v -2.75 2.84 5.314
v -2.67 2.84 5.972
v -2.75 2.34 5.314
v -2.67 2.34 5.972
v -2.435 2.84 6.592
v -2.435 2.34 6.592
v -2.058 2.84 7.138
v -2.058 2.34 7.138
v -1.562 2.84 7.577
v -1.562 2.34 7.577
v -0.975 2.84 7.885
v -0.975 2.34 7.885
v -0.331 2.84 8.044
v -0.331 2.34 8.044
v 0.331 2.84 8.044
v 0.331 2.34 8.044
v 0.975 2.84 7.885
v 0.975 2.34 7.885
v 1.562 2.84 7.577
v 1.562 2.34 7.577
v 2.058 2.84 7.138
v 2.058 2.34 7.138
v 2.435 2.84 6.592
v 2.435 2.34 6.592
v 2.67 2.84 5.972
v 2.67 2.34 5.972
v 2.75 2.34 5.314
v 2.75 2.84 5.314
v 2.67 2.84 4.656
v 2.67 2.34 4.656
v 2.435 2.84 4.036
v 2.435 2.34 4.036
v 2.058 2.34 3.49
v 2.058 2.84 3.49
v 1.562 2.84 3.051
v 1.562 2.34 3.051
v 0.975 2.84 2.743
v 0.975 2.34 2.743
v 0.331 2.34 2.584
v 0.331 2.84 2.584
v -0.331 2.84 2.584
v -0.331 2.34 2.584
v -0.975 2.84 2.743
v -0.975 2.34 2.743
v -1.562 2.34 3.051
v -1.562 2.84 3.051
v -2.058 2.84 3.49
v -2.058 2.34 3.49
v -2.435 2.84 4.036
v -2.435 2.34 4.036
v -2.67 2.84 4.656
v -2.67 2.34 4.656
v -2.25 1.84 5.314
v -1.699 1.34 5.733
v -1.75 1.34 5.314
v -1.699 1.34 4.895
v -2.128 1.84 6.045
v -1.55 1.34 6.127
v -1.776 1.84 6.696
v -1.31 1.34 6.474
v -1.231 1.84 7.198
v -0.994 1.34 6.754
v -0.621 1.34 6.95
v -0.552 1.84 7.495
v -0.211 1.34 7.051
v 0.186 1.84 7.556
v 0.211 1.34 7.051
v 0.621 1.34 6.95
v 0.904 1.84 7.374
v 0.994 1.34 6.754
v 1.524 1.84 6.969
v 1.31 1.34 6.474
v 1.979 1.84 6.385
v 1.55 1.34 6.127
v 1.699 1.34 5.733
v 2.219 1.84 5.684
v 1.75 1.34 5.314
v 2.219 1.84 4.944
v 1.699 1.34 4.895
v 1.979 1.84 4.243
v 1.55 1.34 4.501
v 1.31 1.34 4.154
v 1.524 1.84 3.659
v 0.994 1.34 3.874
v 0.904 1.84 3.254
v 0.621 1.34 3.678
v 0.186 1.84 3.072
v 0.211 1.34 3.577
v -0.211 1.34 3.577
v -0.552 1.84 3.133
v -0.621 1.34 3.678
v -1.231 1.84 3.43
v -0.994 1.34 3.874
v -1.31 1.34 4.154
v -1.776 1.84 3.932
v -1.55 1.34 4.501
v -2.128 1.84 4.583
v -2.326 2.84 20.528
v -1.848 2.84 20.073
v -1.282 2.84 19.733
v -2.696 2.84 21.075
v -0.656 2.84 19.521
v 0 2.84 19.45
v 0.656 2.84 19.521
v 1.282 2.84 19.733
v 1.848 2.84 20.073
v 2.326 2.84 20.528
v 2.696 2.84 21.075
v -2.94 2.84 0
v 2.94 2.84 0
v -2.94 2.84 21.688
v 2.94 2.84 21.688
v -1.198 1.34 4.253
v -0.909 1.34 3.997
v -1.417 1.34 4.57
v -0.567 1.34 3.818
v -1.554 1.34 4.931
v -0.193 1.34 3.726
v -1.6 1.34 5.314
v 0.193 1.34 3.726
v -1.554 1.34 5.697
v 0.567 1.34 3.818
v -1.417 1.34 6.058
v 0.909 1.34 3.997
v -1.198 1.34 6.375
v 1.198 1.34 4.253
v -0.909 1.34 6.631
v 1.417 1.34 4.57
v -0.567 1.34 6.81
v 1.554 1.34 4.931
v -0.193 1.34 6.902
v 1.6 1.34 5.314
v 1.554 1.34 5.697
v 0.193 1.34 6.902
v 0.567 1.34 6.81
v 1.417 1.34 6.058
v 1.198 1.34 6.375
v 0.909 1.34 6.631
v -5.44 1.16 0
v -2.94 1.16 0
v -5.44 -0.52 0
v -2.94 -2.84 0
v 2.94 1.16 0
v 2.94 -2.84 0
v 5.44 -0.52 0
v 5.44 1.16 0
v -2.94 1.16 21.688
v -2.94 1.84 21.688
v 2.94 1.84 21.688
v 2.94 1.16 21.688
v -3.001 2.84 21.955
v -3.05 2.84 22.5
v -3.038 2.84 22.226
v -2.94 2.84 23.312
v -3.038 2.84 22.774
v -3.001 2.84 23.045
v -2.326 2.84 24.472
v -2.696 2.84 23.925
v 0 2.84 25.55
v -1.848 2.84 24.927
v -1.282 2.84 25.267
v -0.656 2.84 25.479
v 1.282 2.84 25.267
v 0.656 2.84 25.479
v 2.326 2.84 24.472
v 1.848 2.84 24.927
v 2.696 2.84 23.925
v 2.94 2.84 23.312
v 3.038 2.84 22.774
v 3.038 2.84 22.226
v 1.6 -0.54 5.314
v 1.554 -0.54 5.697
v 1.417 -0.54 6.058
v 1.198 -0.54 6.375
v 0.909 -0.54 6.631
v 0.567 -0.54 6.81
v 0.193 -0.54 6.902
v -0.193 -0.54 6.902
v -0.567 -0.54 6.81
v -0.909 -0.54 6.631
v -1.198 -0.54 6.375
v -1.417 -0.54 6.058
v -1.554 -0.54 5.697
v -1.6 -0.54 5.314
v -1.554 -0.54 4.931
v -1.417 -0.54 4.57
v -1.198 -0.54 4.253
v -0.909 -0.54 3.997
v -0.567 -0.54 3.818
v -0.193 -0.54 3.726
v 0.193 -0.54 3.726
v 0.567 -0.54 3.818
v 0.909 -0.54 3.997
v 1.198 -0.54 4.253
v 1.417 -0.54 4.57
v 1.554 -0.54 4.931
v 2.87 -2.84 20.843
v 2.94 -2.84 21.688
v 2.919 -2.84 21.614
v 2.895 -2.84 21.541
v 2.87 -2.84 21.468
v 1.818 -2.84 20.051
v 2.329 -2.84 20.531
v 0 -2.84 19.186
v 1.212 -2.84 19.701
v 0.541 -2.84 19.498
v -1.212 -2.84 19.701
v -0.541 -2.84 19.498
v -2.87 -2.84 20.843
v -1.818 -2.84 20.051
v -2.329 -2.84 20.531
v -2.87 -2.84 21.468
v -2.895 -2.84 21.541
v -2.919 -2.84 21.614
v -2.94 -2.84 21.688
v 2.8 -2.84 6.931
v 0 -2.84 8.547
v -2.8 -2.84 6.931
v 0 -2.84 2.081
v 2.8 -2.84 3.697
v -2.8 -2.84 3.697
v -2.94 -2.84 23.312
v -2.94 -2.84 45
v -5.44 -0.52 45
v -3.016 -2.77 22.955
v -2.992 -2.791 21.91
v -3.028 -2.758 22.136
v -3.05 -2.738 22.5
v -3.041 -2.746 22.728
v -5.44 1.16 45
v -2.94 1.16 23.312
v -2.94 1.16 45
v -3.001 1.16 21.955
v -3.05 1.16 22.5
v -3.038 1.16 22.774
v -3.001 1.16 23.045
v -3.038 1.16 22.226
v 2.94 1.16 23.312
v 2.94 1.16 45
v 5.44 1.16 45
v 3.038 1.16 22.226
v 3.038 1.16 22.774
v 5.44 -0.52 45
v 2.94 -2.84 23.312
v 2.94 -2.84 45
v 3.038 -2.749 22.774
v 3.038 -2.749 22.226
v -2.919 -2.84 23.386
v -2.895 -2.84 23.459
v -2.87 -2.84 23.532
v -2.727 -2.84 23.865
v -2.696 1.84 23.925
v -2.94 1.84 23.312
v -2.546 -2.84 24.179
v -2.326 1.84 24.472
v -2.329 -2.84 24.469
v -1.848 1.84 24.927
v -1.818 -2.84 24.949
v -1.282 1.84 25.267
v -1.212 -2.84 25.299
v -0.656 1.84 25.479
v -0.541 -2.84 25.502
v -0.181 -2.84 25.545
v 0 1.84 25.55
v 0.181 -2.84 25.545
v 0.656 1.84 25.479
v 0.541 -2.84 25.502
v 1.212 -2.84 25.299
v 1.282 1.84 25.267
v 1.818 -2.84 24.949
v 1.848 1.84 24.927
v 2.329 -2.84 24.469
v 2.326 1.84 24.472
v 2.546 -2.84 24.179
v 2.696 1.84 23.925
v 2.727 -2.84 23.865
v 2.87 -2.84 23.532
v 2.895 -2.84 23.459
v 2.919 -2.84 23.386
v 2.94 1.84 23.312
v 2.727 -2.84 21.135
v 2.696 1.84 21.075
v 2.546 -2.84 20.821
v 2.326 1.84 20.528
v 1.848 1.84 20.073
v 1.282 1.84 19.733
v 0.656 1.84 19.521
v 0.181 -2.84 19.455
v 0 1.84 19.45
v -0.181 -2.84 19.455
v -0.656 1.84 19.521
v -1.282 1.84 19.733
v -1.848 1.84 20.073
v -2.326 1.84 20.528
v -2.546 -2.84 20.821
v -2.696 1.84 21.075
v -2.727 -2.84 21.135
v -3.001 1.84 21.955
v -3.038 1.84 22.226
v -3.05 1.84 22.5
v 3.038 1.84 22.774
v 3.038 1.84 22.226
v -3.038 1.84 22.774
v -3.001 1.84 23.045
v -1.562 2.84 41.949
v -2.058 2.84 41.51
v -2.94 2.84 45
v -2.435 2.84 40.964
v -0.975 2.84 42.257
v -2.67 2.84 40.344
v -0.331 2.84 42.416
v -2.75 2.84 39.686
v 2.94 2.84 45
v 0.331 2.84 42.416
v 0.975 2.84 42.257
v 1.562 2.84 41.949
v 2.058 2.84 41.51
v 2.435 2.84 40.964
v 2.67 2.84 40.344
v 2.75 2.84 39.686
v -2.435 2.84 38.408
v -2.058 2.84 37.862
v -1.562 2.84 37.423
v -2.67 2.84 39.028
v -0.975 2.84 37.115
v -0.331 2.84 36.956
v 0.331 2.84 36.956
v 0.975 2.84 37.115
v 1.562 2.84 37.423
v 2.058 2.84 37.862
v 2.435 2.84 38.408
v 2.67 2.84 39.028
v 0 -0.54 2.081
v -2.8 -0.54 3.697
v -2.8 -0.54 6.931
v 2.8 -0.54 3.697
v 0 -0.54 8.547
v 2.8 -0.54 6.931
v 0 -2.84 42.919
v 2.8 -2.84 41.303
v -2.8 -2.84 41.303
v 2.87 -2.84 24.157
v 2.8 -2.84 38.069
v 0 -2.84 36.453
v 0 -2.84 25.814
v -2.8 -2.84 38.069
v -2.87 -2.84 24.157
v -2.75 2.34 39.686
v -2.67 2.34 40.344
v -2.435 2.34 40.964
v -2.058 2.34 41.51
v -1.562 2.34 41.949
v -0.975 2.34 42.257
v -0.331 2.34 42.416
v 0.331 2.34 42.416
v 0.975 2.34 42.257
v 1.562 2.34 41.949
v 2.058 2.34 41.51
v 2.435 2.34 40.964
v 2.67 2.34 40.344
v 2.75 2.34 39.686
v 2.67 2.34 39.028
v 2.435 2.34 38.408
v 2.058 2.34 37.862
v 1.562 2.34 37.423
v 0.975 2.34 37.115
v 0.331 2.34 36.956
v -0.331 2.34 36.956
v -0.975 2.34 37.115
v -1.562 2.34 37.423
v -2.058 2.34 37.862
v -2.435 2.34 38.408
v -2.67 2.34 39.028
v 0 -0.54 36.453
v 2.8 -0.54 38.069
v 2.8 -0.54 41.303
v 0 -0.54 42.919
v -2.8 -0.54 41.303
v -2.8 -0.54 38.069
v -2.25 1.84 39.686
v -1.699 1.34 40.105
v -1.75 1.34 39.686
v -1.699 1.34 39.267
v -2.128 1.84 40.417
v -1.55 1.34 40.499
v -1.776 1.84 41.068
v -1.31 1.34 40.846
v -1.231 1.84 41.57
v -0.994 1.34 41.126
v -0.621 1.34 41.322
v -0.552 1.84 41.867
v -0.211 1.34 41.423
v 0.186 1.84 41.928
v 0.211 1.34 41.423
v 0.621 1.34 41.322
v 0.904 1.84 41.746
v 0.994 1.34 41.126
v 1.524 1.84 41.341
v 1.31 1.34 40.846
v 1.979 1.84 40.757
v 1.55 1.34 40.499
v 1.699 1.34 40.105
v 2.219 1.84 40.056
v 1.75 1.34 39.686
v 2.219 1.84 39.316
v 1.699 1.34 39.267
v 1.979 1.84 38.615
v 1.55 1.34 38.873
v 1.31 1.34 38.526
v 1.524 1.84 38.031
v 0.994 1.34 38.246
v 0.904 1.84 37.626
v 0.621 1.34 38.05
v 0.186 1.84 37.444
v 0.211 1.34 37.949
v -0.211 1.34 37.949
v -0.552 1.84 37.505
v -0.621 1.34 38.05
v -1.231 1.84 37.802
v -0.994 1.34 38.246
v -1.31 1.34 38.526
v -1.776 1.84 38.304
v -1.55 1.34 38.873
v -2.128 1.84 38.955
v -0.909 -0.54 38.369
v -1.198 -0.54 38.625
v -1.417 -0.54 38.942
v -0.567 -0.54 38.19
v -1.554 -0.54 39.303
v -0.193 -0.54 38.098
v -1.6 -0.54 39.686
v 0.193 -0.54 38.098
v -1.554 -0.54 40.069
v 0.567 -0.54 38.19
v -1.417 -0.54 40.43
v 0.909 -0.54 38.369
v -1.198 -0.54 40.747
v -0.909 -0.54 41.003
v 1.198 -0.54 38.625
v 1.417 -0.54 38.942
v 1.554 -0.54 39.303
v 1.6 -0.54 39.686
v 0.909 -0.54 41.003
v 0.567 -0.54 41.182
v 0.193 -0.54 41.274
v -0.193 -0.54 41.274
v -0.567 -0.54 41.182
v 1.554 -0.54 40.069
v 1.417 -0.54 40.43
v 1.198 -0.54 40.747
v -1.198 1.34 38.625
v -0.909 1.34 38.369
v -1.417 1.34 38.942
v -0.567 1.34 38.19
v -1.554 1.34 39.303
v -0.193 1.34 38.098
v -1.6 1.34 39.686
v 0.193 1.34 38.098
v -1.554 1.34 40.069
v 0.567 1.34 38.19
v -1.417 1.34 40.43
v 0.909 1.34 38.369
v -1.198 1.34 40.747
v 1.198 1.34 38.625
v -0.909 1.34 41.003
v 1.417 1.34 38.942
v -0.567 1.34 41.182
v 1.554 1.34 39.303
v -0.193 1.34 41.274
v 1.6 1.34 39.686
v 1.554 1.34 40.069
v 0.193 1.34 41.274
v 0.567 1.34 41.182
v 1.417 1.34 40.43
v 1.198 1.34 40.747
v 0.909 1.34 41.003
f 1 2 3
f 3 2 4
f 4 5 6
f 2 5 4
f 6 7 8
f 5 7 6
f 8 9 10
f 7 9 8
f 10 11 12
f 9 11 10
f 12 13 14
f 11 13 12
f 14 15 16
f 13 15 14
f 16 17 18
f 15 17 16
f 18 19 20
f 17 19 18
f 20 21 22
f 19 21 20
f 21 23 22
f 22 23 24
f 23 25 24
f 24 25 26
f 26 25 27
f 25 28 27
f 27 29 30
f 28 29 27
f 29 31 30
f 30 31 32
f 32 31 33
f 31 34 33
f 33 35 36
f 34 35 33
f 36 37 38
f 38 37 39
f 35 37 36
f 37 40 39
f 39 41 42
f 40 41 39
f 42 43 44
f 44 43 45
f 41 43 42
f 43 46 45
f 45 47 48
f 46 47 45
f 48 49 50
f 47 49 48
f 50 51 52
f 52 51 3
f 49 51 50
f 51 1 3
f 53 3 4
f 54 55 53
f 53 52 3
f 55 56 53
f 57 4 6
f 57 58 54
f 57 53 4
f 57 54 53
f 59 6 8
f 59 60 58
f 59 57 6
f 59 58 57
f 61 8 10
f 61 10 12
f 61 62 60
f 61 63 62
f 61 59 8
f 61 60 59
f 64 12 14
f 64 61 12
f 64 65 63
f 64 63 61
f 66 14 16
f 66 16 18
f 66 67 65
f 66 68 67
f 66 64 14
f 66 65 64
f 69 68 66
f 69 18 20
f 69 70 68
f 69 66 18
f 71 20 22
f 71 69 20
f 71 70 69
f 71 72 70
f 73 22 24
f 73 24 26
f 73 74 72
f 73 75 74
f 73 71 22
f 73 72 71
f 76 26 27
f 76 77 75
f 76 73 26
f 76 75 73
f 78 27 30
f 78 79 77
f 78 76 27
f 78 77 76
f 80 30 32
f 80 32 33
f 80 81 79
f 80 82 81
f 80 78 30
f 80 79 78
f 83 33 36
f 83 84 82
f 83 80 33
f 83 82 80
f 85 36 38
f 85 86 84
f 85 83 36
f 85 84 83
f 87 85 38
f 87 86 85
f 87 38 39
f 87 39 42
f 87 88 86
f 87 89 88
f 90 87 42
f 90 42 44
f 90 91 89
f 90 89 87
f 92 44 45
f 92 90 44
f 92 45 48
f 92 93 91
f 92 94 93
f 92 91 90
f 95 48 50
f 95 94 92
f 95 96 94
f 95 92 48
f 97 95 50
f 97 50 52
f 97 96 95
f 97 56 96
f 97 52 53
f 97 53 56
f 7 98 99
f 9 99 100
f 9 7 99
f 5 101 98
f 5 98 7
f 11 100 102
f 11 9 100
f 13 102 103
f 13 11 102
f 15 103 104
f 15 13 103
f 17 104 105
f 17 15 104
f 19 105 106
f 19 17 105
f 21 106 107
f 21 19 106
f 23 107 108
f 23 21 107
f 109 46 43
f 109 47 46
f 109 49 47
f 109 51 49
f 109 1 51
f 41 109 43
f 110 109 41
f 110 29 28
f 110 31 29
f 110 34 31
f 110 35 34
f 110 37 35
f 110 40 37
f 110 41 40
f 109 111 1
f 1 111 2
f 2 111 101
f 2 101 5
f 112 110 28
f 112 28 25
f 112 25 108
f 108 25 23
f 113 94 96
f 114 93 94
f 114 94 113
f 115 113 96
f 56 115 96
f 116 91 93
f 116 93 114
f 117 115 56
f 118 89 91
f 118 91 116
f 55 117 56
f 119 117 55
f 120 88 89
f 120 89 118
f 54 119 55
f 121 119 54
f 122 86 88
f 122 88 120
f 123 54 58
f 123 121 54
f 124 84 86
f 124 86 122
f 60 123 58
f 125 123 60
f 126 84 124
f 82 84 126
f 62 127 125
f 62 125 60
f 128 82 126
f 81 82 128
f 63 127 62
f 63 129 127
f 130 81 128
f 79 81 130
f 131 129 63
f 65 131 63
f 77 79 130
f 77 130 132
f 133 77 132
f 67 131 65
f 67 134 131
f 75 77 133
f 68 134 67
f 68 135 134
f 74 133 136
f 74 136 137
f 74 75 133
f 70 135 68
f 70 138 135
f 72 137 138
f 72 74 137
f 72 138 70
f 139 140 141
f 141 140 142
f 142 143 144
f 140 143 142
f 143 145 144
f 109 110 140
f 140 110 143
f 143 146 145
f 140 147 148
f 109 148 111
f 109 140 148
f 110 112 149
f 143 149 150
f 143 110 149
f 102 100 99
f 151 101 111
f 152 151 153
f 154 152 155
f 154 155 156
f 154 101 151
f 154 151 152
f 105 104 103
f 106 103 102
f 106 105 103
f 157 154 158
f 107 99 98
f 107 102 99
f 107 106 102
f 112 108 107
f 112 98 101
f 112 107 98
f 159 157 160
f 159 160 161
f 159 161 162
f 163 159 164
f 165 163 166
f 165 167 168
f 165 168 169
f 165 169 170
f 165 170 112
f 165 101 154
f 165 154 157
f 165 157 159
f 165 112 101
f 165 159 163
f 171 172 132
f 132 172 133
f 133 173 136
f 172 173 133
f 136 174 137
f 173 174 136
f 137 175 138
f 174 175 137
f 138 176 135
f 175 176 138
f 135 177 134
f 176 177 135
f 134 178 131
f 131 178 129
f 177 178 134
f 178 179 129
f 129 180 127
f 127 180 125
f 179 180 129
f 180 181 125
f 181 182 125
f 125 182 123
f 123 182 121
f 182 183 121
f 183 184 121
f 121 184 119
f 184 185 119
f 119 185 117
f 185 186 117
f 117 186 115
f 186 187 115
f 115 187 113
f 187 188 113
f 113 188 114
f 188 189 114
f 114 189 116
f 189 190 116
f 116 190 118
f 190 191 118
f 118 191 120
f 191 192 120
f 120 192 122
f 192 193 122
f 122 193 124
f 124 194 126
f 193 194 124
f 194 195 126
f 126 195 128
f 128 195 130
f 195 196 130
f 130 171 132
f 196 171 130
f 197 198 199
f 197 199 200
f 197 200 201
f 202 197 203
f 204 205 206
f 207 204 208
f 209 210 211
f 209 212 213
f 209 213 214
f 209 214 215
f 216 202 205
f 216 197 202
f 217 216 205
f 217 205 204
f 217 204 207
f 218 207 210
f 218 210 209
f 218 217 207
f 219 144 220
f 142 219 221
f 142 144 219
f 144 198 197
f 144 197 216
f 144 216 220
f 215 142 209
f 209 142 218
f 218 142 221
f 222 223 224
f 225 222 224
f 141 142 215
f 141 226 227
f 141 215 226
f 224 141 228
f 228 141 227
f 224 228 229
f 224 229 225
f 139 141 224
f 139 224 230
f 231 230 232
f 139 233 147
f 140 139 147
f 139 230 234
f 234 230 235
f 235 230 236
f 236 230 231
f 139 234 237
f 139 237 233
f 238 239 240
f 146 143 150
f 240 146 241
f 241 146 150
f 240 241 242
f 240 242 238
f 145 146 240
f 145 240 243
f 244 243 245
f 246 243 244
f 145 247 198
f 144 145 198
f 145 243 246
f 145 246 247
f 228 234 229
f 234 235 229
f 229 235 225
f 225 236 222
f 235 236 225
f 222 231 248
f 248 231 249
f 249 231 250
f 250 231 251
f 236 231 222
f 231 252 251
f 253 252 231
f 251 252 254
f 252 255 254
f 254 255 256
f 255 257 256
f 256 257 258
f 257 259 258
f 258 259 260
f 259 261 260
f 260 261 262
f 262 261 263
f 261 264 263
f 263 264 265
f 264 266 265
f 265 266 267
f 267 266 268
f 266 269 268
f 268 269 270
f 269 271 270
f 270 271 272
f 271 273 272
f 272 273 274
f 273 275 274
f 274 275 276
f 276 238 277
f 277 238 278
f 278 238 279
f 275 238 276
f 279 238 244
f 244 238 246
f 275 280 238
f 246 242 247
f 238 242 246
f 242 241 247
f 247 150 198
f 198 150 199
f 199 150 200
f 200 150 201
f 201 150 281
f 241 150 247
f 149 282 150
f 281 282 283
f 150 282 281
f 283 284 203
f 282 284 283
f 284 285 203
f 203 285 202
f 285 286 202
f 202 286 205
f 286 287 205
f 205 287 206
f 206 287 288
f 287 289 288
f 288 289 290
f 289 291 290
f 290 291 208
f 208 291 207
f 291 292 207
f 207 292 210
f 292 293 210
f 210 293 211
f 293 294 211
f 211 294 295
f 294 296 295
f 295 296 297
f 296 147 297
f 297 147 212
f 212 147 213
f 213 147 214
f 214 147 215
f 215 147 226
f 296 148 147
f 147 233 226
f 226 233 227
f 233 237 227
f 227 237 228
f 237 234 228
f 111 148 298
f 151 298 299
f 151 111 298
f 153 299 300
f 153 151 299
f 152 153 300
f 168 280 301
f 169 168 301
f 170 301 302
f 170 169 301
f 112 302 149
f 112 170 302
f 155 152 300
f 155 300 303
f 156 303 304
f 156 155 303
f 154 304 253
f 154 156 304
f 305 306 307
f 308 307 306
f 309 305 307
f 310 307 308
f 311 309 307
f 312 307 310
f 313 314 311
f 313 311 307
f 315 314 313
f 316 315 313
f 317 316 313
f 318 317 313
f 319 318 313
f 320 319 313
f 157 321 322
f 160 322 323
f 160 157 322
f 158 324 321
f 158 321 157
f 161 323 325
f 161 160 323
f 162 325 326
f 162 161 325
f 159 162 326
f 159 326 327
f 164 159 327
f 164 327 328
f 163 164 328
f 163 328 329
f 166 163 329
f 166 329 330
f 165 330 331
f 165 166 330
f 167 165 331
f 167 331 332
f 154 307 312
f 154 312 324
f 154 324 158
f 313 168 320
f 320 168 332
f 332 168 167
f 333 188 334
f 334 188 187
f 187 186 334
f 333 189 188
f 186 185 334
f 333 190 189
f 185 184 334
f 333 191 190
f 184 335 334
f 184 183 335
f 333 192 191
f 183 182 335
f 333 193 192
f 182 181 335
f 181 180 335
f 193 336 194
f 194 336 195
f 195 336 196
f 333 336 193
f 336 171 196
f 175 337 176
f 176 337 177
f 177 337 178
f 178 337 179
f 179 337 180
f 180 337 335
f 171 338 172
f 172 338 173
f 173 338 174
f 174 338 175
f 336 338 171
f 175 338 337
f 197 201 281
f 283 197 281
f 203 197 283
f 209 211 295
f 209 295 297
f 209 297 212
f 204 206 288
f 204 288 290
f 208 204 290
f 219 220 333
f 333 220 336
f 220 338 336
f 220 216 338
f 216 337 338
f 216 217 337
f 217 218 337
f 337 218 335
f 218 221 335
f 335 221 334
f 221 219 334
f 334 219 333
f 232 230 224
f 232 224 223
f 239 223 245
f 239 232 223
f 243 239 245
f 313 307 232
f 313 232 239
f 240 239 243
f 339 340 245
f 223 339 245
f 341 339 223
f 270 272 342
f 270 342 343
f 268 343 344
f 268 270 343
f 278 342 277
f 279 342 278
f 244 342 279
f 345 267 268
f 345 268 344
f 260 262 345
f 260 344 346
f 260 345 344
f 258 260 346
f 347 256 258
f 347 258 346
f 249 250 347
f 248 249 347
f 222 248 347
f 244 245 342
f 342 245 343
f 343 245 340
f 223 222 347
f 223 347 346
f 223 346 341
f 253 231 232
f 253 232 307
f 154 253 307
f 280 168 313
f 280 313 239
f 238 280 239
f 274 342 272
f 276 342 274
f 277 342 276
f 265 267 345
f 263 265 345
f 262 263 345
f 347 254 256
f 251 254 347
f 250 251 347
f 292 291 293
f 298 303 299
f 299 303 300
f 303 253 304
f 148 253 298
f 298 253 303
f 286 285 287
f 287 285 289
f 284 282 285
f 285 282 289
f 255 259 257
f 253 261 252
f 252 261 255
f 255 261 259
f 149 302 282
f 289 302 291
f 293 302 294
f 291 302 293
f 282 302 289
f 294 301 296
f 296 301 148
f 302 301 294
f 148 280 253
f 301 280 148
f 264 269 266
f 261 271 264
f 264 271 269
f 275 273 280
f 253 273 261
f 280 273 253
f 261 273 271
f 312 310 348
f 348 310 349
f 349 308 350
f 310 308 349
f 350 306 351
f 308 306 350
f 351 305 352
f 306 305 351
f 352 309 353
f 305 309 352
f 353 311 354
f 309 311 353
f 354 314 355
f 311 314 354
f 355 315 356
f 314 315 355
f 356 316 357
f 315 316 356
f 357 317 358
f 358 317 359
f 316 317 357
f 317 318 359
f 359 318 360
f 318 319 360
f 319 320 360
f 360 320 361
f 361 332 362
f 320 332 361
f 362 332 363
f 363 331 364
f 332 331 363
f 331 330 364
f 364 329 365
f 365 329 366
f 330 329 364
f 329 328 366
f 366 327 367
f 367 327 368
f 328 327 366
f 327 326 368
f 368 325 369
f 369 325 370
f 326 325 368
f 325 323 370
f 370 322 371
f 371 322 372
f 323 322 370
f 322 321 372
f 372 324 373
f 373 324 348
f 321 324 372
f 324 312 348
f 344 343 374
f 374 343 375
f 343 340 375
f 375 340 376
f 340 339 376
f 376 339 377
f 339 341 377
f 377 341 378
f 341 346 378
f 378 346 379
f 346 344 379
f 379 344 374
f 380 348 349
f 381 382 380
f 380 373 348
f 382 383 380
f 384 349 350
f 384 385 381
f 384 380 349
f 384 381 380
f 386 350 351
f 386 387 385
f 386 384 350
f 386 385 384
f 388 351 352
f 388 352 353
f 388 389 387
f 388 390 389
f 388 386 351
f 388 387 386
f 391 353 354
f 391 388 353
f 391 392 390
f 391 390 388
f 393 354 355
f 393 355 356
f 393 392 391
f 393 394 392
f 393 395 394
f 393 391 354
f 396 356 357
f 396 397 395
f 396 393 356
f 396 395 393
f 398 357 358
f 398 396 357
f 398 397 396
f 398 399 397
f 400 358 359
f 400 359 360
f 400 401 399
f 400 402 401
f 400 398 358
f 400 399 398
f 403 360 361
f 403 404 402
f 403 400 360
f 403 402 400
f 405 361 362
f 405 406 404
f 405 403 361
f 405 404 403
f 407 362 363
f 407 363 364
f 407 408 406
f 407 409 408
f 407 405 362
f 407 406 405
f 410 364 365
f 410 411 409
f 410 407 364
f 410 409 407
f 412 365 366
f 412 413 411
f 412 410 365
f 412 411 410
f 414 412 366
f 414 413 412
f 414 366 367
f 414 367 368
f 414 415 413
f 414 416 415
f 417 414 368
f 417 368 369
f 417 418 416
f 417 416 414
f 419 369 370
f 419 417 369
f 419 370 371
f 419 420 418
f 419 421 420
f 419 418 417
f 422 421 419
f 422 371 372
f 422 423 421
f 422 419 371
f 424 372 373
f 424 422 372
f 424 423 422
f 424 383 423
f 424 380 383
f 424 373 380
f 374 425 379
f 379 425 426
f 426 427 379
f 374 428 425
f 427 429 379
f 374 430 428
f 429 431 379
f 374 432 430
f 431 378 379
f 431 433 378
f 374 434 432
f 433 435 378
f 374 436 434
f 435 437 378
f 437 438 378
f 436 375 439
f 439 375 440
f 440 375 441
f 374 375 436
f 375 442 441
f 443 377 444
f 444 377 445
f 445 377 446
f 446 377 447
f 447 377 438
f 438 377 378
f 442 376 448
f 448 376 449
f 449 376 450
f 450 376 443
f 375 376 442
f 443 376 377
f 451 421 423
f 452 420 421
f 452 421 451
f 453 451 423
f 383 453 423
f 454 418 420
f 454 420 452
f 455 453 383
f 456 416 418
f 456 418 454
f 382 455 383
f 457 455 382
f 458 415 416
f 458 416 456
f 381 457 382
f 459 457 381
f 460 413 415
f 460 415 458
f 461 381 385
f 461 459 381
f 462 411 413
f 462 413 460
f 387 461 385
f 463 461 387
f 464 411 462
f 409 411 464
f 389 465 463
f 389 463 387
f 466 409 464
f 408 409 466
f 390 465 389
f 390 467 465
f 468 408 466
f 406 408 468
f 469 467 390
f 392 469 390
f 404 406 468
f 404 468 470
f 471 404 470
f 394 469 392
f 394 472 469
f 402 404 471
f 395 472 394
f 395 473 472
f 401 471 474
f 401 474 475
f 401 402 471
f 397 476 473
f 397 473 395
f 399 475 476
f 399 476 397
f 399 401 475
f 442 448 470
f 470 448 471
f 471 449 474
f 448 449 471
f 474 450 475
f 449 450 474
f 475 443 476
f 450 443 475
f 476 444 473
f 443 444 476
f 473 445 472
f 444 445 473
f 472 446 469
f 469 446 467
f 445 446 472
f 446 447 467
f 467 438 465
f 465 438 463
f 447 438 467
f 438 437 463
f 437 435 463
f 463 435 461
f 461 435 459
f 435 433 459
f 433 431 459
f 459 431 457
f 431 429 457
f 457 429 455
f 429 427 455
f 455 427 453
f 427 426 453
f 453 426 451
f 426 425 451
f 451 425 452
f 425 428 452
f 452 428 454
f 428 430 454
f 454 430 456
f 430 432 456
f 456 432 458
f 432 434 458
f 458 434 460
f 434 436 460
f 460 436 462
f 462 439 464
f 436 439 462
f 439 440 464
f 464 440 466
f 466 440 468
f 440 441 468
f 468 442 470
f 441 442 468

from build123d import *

# Parameters (mm, degrees)
PAD_DEPTH       = 45
SKETCH001_R     = 1.6
POCKET_DEPTH    = 5.68
SKETCH002_R     = 2.4
SKETCH002_R_2   = 1.6
PAD001_DEPTH    = 4
SKETCH003_R     = 1.6
POCKET001_DEPTH = 2.4
PAD002_DEPTH    = 2.4
SKETCH004_R     = 3.05
POCKET002_DEPTH = 9.68
SKETCH005_R     = 3.05
PAD003_DEPTH    = 1
SKETCH006_R     = 1.6
POCKET003_DEPTH = 5.681
POCKET004_DEPTH = 2.3
SKETCH008_R     = 2.75
POCKET005_DEPTH = 1.5
CHAMFER_SIZE    = 1


with BuildPart() as part:
    # Sketch → Pad (new body)
    with BuildSketch(Plane.XY):
        Polygon((2.94, -2.84), (-2.94, -2.84), (-5.44, -0.52), (-5.44, 1.16), (-2.94, 1.16), (-2.94, 2.84), (2.94, 2.84), (2.94, 1.16), (5.44, 1.16), (5.44, -0.52), align=None)
    extrude(amount=PAD_DEPTH)

    # Sketch001 (on Face6 of Pad) → Pocket (cut)
    with BuildSketch(Plane(origin=(0, 2.84, 0), x_dir=(-1, 0, 0), z_dir=(0, 1, 0))):
        with Locations((0, 22.5)):
            Circle(SKETCH001_R)
    extrude(amount=-POCKET_DEPTH, mode=Mode.SUBTRACT)

    # Sketch002 (on Face11 of Pocket) → Pad001 (join)
    with BuildSketch(Plane(origin=(0, 2.84, 0), x_dir=(-1, 0, 0), z_dir=(0, 1, 0))):
        with Locations((0, 22.5)):
            Circle(SKETCH002_R)
        with Locations((0, 22.5)):
            Circle(SKETCH002_R_2, mode=Mode.SUBTRACT)
    extrude(amount=PAD001_DEPTH)

    # Sketch003 (on Face1 of Pad001) → Pocket001 (cut)
    with BuildSketch(Plane.XZ.offset(2.84)):
        Polygon((0, 19.186009), (2.87, 20.843005), (2.87, 24.156995), (0, 25.813991), (-2.87, 24.156995), (-2.87, 20.843005), align=None)
        with Locations((0, 22.5)):
            Circle(SKETCH003_R, mode=Mode.SUBTRACT)
    extrude(amount=-POCKET001_DEPTH, mode=Mode.SUBTRACT)

    # Pocket001 Face19 → Pad002 (add)
    with BuildSketch(Plane(origin=(0, -0.44, 22.5), x_dir=(-1, 0, 0), z_dir=(0, -1, 0))):
        Polygon((0, 3.313991), (-2.87, 1.656995), (-2.87, -1.656995), (0, -3.313991), (2.87, -1.656995), (2.87, 1.656995), align=None)
        with BuildLine():
            ThreePointArc((1.6, 0), (0, -1.6), (-1.6, 0))
            ThreePointArc((-1.6, 0), (0, 1.6), (1.6, 0))
        make_face(mode=Mode.SUBTRACT)
    extrude(amount=PAD002_DEPTH)

    # Sketch004 (on Face16 of Pad001) → Pocket002 (cut)
    with BuildSketch(Plane(origin=(0, 6.84, 0), x_dir=(-1, 0, 0), z_dir=(0, 1, 0))):
        with Locations((0, 22.5)):
            Circle(SKETCH004_R)
    extrude(amount=-POCKET002_DEPTH, mode=Mode.SUBTRACT)

    # Sketch005 (on Face12 of Pocket002) → Pad003 (join)
    with BuildSketch(Plane(origin=(0, 2.84, 0), x_dir=(-1, 0, 0), z_dir=(0, 1, 0))):
        with Locations((0, 22.5)):
            Circle(SKETCH005_R)
    extrude(amount=-PAD003_DEPTH)

    # Sketch006 (on Face17 of Pad003) → Pocket003 (cut, through all)
    with BuildSketch(Plane.XZ.offset(2.84)):
        with Locations((0, 39.686)):
            Circle(SKETCH006_R)
        with Locations((0, 5.314)):
            Circle(SKETCH006_R)
    extrude(amount=-POCKET003_DEPTH, mode=Mode.SUBTRACT)

    # Sketch007 (on Face1 of Pocket003) → Pocket004 (cut)
    with BuildSketch(Plane.XZ.offset(2.84)):
        Polygon((0, 36.452838), (2.8, 38.069419), (2.8, 41.302581), (0, 42.919162), (-2.8, 41.302581), (-2.8, 38.069419), align=None)
        Polygon((0, 2.080838), (2.8, 3.697419), (2.8, 6.930581), (0, 8.547162), (-2.8, 6.930581), (-2.8, 3.697419), align=None)
    extrude(amount=-POCKET004_DEPTH, mode=Mode.SUBTRACT)

    # Sketch008 (on Face41 of Pocket004) → Pocket005 (cut)
    with BuildSketch(Plane(origin=(0, 2.84, 0), x_dir=(-1, 0, 0), z_dir=(0, 1, 0))):
        with Locations((0, 39.686)):
            Circle(SKETCH008_R)
        with Locations((0, 5.314)):
            Circle(SKETCH008_R)
    extrude(amount=-POCKET005_DEPTH, mode=Mode.SUBTRACT)

    # Chamfer
    chamfer_edges = [part.edges().sort_by_distance(p)[0] for p in [
        (2.75, 1.34, 5.314),
        (2.75, 1.34, 39.686),
    ]]
    chamfer(chamfer_edges, length=CHAMFER_SIZE)


solid = part.part
